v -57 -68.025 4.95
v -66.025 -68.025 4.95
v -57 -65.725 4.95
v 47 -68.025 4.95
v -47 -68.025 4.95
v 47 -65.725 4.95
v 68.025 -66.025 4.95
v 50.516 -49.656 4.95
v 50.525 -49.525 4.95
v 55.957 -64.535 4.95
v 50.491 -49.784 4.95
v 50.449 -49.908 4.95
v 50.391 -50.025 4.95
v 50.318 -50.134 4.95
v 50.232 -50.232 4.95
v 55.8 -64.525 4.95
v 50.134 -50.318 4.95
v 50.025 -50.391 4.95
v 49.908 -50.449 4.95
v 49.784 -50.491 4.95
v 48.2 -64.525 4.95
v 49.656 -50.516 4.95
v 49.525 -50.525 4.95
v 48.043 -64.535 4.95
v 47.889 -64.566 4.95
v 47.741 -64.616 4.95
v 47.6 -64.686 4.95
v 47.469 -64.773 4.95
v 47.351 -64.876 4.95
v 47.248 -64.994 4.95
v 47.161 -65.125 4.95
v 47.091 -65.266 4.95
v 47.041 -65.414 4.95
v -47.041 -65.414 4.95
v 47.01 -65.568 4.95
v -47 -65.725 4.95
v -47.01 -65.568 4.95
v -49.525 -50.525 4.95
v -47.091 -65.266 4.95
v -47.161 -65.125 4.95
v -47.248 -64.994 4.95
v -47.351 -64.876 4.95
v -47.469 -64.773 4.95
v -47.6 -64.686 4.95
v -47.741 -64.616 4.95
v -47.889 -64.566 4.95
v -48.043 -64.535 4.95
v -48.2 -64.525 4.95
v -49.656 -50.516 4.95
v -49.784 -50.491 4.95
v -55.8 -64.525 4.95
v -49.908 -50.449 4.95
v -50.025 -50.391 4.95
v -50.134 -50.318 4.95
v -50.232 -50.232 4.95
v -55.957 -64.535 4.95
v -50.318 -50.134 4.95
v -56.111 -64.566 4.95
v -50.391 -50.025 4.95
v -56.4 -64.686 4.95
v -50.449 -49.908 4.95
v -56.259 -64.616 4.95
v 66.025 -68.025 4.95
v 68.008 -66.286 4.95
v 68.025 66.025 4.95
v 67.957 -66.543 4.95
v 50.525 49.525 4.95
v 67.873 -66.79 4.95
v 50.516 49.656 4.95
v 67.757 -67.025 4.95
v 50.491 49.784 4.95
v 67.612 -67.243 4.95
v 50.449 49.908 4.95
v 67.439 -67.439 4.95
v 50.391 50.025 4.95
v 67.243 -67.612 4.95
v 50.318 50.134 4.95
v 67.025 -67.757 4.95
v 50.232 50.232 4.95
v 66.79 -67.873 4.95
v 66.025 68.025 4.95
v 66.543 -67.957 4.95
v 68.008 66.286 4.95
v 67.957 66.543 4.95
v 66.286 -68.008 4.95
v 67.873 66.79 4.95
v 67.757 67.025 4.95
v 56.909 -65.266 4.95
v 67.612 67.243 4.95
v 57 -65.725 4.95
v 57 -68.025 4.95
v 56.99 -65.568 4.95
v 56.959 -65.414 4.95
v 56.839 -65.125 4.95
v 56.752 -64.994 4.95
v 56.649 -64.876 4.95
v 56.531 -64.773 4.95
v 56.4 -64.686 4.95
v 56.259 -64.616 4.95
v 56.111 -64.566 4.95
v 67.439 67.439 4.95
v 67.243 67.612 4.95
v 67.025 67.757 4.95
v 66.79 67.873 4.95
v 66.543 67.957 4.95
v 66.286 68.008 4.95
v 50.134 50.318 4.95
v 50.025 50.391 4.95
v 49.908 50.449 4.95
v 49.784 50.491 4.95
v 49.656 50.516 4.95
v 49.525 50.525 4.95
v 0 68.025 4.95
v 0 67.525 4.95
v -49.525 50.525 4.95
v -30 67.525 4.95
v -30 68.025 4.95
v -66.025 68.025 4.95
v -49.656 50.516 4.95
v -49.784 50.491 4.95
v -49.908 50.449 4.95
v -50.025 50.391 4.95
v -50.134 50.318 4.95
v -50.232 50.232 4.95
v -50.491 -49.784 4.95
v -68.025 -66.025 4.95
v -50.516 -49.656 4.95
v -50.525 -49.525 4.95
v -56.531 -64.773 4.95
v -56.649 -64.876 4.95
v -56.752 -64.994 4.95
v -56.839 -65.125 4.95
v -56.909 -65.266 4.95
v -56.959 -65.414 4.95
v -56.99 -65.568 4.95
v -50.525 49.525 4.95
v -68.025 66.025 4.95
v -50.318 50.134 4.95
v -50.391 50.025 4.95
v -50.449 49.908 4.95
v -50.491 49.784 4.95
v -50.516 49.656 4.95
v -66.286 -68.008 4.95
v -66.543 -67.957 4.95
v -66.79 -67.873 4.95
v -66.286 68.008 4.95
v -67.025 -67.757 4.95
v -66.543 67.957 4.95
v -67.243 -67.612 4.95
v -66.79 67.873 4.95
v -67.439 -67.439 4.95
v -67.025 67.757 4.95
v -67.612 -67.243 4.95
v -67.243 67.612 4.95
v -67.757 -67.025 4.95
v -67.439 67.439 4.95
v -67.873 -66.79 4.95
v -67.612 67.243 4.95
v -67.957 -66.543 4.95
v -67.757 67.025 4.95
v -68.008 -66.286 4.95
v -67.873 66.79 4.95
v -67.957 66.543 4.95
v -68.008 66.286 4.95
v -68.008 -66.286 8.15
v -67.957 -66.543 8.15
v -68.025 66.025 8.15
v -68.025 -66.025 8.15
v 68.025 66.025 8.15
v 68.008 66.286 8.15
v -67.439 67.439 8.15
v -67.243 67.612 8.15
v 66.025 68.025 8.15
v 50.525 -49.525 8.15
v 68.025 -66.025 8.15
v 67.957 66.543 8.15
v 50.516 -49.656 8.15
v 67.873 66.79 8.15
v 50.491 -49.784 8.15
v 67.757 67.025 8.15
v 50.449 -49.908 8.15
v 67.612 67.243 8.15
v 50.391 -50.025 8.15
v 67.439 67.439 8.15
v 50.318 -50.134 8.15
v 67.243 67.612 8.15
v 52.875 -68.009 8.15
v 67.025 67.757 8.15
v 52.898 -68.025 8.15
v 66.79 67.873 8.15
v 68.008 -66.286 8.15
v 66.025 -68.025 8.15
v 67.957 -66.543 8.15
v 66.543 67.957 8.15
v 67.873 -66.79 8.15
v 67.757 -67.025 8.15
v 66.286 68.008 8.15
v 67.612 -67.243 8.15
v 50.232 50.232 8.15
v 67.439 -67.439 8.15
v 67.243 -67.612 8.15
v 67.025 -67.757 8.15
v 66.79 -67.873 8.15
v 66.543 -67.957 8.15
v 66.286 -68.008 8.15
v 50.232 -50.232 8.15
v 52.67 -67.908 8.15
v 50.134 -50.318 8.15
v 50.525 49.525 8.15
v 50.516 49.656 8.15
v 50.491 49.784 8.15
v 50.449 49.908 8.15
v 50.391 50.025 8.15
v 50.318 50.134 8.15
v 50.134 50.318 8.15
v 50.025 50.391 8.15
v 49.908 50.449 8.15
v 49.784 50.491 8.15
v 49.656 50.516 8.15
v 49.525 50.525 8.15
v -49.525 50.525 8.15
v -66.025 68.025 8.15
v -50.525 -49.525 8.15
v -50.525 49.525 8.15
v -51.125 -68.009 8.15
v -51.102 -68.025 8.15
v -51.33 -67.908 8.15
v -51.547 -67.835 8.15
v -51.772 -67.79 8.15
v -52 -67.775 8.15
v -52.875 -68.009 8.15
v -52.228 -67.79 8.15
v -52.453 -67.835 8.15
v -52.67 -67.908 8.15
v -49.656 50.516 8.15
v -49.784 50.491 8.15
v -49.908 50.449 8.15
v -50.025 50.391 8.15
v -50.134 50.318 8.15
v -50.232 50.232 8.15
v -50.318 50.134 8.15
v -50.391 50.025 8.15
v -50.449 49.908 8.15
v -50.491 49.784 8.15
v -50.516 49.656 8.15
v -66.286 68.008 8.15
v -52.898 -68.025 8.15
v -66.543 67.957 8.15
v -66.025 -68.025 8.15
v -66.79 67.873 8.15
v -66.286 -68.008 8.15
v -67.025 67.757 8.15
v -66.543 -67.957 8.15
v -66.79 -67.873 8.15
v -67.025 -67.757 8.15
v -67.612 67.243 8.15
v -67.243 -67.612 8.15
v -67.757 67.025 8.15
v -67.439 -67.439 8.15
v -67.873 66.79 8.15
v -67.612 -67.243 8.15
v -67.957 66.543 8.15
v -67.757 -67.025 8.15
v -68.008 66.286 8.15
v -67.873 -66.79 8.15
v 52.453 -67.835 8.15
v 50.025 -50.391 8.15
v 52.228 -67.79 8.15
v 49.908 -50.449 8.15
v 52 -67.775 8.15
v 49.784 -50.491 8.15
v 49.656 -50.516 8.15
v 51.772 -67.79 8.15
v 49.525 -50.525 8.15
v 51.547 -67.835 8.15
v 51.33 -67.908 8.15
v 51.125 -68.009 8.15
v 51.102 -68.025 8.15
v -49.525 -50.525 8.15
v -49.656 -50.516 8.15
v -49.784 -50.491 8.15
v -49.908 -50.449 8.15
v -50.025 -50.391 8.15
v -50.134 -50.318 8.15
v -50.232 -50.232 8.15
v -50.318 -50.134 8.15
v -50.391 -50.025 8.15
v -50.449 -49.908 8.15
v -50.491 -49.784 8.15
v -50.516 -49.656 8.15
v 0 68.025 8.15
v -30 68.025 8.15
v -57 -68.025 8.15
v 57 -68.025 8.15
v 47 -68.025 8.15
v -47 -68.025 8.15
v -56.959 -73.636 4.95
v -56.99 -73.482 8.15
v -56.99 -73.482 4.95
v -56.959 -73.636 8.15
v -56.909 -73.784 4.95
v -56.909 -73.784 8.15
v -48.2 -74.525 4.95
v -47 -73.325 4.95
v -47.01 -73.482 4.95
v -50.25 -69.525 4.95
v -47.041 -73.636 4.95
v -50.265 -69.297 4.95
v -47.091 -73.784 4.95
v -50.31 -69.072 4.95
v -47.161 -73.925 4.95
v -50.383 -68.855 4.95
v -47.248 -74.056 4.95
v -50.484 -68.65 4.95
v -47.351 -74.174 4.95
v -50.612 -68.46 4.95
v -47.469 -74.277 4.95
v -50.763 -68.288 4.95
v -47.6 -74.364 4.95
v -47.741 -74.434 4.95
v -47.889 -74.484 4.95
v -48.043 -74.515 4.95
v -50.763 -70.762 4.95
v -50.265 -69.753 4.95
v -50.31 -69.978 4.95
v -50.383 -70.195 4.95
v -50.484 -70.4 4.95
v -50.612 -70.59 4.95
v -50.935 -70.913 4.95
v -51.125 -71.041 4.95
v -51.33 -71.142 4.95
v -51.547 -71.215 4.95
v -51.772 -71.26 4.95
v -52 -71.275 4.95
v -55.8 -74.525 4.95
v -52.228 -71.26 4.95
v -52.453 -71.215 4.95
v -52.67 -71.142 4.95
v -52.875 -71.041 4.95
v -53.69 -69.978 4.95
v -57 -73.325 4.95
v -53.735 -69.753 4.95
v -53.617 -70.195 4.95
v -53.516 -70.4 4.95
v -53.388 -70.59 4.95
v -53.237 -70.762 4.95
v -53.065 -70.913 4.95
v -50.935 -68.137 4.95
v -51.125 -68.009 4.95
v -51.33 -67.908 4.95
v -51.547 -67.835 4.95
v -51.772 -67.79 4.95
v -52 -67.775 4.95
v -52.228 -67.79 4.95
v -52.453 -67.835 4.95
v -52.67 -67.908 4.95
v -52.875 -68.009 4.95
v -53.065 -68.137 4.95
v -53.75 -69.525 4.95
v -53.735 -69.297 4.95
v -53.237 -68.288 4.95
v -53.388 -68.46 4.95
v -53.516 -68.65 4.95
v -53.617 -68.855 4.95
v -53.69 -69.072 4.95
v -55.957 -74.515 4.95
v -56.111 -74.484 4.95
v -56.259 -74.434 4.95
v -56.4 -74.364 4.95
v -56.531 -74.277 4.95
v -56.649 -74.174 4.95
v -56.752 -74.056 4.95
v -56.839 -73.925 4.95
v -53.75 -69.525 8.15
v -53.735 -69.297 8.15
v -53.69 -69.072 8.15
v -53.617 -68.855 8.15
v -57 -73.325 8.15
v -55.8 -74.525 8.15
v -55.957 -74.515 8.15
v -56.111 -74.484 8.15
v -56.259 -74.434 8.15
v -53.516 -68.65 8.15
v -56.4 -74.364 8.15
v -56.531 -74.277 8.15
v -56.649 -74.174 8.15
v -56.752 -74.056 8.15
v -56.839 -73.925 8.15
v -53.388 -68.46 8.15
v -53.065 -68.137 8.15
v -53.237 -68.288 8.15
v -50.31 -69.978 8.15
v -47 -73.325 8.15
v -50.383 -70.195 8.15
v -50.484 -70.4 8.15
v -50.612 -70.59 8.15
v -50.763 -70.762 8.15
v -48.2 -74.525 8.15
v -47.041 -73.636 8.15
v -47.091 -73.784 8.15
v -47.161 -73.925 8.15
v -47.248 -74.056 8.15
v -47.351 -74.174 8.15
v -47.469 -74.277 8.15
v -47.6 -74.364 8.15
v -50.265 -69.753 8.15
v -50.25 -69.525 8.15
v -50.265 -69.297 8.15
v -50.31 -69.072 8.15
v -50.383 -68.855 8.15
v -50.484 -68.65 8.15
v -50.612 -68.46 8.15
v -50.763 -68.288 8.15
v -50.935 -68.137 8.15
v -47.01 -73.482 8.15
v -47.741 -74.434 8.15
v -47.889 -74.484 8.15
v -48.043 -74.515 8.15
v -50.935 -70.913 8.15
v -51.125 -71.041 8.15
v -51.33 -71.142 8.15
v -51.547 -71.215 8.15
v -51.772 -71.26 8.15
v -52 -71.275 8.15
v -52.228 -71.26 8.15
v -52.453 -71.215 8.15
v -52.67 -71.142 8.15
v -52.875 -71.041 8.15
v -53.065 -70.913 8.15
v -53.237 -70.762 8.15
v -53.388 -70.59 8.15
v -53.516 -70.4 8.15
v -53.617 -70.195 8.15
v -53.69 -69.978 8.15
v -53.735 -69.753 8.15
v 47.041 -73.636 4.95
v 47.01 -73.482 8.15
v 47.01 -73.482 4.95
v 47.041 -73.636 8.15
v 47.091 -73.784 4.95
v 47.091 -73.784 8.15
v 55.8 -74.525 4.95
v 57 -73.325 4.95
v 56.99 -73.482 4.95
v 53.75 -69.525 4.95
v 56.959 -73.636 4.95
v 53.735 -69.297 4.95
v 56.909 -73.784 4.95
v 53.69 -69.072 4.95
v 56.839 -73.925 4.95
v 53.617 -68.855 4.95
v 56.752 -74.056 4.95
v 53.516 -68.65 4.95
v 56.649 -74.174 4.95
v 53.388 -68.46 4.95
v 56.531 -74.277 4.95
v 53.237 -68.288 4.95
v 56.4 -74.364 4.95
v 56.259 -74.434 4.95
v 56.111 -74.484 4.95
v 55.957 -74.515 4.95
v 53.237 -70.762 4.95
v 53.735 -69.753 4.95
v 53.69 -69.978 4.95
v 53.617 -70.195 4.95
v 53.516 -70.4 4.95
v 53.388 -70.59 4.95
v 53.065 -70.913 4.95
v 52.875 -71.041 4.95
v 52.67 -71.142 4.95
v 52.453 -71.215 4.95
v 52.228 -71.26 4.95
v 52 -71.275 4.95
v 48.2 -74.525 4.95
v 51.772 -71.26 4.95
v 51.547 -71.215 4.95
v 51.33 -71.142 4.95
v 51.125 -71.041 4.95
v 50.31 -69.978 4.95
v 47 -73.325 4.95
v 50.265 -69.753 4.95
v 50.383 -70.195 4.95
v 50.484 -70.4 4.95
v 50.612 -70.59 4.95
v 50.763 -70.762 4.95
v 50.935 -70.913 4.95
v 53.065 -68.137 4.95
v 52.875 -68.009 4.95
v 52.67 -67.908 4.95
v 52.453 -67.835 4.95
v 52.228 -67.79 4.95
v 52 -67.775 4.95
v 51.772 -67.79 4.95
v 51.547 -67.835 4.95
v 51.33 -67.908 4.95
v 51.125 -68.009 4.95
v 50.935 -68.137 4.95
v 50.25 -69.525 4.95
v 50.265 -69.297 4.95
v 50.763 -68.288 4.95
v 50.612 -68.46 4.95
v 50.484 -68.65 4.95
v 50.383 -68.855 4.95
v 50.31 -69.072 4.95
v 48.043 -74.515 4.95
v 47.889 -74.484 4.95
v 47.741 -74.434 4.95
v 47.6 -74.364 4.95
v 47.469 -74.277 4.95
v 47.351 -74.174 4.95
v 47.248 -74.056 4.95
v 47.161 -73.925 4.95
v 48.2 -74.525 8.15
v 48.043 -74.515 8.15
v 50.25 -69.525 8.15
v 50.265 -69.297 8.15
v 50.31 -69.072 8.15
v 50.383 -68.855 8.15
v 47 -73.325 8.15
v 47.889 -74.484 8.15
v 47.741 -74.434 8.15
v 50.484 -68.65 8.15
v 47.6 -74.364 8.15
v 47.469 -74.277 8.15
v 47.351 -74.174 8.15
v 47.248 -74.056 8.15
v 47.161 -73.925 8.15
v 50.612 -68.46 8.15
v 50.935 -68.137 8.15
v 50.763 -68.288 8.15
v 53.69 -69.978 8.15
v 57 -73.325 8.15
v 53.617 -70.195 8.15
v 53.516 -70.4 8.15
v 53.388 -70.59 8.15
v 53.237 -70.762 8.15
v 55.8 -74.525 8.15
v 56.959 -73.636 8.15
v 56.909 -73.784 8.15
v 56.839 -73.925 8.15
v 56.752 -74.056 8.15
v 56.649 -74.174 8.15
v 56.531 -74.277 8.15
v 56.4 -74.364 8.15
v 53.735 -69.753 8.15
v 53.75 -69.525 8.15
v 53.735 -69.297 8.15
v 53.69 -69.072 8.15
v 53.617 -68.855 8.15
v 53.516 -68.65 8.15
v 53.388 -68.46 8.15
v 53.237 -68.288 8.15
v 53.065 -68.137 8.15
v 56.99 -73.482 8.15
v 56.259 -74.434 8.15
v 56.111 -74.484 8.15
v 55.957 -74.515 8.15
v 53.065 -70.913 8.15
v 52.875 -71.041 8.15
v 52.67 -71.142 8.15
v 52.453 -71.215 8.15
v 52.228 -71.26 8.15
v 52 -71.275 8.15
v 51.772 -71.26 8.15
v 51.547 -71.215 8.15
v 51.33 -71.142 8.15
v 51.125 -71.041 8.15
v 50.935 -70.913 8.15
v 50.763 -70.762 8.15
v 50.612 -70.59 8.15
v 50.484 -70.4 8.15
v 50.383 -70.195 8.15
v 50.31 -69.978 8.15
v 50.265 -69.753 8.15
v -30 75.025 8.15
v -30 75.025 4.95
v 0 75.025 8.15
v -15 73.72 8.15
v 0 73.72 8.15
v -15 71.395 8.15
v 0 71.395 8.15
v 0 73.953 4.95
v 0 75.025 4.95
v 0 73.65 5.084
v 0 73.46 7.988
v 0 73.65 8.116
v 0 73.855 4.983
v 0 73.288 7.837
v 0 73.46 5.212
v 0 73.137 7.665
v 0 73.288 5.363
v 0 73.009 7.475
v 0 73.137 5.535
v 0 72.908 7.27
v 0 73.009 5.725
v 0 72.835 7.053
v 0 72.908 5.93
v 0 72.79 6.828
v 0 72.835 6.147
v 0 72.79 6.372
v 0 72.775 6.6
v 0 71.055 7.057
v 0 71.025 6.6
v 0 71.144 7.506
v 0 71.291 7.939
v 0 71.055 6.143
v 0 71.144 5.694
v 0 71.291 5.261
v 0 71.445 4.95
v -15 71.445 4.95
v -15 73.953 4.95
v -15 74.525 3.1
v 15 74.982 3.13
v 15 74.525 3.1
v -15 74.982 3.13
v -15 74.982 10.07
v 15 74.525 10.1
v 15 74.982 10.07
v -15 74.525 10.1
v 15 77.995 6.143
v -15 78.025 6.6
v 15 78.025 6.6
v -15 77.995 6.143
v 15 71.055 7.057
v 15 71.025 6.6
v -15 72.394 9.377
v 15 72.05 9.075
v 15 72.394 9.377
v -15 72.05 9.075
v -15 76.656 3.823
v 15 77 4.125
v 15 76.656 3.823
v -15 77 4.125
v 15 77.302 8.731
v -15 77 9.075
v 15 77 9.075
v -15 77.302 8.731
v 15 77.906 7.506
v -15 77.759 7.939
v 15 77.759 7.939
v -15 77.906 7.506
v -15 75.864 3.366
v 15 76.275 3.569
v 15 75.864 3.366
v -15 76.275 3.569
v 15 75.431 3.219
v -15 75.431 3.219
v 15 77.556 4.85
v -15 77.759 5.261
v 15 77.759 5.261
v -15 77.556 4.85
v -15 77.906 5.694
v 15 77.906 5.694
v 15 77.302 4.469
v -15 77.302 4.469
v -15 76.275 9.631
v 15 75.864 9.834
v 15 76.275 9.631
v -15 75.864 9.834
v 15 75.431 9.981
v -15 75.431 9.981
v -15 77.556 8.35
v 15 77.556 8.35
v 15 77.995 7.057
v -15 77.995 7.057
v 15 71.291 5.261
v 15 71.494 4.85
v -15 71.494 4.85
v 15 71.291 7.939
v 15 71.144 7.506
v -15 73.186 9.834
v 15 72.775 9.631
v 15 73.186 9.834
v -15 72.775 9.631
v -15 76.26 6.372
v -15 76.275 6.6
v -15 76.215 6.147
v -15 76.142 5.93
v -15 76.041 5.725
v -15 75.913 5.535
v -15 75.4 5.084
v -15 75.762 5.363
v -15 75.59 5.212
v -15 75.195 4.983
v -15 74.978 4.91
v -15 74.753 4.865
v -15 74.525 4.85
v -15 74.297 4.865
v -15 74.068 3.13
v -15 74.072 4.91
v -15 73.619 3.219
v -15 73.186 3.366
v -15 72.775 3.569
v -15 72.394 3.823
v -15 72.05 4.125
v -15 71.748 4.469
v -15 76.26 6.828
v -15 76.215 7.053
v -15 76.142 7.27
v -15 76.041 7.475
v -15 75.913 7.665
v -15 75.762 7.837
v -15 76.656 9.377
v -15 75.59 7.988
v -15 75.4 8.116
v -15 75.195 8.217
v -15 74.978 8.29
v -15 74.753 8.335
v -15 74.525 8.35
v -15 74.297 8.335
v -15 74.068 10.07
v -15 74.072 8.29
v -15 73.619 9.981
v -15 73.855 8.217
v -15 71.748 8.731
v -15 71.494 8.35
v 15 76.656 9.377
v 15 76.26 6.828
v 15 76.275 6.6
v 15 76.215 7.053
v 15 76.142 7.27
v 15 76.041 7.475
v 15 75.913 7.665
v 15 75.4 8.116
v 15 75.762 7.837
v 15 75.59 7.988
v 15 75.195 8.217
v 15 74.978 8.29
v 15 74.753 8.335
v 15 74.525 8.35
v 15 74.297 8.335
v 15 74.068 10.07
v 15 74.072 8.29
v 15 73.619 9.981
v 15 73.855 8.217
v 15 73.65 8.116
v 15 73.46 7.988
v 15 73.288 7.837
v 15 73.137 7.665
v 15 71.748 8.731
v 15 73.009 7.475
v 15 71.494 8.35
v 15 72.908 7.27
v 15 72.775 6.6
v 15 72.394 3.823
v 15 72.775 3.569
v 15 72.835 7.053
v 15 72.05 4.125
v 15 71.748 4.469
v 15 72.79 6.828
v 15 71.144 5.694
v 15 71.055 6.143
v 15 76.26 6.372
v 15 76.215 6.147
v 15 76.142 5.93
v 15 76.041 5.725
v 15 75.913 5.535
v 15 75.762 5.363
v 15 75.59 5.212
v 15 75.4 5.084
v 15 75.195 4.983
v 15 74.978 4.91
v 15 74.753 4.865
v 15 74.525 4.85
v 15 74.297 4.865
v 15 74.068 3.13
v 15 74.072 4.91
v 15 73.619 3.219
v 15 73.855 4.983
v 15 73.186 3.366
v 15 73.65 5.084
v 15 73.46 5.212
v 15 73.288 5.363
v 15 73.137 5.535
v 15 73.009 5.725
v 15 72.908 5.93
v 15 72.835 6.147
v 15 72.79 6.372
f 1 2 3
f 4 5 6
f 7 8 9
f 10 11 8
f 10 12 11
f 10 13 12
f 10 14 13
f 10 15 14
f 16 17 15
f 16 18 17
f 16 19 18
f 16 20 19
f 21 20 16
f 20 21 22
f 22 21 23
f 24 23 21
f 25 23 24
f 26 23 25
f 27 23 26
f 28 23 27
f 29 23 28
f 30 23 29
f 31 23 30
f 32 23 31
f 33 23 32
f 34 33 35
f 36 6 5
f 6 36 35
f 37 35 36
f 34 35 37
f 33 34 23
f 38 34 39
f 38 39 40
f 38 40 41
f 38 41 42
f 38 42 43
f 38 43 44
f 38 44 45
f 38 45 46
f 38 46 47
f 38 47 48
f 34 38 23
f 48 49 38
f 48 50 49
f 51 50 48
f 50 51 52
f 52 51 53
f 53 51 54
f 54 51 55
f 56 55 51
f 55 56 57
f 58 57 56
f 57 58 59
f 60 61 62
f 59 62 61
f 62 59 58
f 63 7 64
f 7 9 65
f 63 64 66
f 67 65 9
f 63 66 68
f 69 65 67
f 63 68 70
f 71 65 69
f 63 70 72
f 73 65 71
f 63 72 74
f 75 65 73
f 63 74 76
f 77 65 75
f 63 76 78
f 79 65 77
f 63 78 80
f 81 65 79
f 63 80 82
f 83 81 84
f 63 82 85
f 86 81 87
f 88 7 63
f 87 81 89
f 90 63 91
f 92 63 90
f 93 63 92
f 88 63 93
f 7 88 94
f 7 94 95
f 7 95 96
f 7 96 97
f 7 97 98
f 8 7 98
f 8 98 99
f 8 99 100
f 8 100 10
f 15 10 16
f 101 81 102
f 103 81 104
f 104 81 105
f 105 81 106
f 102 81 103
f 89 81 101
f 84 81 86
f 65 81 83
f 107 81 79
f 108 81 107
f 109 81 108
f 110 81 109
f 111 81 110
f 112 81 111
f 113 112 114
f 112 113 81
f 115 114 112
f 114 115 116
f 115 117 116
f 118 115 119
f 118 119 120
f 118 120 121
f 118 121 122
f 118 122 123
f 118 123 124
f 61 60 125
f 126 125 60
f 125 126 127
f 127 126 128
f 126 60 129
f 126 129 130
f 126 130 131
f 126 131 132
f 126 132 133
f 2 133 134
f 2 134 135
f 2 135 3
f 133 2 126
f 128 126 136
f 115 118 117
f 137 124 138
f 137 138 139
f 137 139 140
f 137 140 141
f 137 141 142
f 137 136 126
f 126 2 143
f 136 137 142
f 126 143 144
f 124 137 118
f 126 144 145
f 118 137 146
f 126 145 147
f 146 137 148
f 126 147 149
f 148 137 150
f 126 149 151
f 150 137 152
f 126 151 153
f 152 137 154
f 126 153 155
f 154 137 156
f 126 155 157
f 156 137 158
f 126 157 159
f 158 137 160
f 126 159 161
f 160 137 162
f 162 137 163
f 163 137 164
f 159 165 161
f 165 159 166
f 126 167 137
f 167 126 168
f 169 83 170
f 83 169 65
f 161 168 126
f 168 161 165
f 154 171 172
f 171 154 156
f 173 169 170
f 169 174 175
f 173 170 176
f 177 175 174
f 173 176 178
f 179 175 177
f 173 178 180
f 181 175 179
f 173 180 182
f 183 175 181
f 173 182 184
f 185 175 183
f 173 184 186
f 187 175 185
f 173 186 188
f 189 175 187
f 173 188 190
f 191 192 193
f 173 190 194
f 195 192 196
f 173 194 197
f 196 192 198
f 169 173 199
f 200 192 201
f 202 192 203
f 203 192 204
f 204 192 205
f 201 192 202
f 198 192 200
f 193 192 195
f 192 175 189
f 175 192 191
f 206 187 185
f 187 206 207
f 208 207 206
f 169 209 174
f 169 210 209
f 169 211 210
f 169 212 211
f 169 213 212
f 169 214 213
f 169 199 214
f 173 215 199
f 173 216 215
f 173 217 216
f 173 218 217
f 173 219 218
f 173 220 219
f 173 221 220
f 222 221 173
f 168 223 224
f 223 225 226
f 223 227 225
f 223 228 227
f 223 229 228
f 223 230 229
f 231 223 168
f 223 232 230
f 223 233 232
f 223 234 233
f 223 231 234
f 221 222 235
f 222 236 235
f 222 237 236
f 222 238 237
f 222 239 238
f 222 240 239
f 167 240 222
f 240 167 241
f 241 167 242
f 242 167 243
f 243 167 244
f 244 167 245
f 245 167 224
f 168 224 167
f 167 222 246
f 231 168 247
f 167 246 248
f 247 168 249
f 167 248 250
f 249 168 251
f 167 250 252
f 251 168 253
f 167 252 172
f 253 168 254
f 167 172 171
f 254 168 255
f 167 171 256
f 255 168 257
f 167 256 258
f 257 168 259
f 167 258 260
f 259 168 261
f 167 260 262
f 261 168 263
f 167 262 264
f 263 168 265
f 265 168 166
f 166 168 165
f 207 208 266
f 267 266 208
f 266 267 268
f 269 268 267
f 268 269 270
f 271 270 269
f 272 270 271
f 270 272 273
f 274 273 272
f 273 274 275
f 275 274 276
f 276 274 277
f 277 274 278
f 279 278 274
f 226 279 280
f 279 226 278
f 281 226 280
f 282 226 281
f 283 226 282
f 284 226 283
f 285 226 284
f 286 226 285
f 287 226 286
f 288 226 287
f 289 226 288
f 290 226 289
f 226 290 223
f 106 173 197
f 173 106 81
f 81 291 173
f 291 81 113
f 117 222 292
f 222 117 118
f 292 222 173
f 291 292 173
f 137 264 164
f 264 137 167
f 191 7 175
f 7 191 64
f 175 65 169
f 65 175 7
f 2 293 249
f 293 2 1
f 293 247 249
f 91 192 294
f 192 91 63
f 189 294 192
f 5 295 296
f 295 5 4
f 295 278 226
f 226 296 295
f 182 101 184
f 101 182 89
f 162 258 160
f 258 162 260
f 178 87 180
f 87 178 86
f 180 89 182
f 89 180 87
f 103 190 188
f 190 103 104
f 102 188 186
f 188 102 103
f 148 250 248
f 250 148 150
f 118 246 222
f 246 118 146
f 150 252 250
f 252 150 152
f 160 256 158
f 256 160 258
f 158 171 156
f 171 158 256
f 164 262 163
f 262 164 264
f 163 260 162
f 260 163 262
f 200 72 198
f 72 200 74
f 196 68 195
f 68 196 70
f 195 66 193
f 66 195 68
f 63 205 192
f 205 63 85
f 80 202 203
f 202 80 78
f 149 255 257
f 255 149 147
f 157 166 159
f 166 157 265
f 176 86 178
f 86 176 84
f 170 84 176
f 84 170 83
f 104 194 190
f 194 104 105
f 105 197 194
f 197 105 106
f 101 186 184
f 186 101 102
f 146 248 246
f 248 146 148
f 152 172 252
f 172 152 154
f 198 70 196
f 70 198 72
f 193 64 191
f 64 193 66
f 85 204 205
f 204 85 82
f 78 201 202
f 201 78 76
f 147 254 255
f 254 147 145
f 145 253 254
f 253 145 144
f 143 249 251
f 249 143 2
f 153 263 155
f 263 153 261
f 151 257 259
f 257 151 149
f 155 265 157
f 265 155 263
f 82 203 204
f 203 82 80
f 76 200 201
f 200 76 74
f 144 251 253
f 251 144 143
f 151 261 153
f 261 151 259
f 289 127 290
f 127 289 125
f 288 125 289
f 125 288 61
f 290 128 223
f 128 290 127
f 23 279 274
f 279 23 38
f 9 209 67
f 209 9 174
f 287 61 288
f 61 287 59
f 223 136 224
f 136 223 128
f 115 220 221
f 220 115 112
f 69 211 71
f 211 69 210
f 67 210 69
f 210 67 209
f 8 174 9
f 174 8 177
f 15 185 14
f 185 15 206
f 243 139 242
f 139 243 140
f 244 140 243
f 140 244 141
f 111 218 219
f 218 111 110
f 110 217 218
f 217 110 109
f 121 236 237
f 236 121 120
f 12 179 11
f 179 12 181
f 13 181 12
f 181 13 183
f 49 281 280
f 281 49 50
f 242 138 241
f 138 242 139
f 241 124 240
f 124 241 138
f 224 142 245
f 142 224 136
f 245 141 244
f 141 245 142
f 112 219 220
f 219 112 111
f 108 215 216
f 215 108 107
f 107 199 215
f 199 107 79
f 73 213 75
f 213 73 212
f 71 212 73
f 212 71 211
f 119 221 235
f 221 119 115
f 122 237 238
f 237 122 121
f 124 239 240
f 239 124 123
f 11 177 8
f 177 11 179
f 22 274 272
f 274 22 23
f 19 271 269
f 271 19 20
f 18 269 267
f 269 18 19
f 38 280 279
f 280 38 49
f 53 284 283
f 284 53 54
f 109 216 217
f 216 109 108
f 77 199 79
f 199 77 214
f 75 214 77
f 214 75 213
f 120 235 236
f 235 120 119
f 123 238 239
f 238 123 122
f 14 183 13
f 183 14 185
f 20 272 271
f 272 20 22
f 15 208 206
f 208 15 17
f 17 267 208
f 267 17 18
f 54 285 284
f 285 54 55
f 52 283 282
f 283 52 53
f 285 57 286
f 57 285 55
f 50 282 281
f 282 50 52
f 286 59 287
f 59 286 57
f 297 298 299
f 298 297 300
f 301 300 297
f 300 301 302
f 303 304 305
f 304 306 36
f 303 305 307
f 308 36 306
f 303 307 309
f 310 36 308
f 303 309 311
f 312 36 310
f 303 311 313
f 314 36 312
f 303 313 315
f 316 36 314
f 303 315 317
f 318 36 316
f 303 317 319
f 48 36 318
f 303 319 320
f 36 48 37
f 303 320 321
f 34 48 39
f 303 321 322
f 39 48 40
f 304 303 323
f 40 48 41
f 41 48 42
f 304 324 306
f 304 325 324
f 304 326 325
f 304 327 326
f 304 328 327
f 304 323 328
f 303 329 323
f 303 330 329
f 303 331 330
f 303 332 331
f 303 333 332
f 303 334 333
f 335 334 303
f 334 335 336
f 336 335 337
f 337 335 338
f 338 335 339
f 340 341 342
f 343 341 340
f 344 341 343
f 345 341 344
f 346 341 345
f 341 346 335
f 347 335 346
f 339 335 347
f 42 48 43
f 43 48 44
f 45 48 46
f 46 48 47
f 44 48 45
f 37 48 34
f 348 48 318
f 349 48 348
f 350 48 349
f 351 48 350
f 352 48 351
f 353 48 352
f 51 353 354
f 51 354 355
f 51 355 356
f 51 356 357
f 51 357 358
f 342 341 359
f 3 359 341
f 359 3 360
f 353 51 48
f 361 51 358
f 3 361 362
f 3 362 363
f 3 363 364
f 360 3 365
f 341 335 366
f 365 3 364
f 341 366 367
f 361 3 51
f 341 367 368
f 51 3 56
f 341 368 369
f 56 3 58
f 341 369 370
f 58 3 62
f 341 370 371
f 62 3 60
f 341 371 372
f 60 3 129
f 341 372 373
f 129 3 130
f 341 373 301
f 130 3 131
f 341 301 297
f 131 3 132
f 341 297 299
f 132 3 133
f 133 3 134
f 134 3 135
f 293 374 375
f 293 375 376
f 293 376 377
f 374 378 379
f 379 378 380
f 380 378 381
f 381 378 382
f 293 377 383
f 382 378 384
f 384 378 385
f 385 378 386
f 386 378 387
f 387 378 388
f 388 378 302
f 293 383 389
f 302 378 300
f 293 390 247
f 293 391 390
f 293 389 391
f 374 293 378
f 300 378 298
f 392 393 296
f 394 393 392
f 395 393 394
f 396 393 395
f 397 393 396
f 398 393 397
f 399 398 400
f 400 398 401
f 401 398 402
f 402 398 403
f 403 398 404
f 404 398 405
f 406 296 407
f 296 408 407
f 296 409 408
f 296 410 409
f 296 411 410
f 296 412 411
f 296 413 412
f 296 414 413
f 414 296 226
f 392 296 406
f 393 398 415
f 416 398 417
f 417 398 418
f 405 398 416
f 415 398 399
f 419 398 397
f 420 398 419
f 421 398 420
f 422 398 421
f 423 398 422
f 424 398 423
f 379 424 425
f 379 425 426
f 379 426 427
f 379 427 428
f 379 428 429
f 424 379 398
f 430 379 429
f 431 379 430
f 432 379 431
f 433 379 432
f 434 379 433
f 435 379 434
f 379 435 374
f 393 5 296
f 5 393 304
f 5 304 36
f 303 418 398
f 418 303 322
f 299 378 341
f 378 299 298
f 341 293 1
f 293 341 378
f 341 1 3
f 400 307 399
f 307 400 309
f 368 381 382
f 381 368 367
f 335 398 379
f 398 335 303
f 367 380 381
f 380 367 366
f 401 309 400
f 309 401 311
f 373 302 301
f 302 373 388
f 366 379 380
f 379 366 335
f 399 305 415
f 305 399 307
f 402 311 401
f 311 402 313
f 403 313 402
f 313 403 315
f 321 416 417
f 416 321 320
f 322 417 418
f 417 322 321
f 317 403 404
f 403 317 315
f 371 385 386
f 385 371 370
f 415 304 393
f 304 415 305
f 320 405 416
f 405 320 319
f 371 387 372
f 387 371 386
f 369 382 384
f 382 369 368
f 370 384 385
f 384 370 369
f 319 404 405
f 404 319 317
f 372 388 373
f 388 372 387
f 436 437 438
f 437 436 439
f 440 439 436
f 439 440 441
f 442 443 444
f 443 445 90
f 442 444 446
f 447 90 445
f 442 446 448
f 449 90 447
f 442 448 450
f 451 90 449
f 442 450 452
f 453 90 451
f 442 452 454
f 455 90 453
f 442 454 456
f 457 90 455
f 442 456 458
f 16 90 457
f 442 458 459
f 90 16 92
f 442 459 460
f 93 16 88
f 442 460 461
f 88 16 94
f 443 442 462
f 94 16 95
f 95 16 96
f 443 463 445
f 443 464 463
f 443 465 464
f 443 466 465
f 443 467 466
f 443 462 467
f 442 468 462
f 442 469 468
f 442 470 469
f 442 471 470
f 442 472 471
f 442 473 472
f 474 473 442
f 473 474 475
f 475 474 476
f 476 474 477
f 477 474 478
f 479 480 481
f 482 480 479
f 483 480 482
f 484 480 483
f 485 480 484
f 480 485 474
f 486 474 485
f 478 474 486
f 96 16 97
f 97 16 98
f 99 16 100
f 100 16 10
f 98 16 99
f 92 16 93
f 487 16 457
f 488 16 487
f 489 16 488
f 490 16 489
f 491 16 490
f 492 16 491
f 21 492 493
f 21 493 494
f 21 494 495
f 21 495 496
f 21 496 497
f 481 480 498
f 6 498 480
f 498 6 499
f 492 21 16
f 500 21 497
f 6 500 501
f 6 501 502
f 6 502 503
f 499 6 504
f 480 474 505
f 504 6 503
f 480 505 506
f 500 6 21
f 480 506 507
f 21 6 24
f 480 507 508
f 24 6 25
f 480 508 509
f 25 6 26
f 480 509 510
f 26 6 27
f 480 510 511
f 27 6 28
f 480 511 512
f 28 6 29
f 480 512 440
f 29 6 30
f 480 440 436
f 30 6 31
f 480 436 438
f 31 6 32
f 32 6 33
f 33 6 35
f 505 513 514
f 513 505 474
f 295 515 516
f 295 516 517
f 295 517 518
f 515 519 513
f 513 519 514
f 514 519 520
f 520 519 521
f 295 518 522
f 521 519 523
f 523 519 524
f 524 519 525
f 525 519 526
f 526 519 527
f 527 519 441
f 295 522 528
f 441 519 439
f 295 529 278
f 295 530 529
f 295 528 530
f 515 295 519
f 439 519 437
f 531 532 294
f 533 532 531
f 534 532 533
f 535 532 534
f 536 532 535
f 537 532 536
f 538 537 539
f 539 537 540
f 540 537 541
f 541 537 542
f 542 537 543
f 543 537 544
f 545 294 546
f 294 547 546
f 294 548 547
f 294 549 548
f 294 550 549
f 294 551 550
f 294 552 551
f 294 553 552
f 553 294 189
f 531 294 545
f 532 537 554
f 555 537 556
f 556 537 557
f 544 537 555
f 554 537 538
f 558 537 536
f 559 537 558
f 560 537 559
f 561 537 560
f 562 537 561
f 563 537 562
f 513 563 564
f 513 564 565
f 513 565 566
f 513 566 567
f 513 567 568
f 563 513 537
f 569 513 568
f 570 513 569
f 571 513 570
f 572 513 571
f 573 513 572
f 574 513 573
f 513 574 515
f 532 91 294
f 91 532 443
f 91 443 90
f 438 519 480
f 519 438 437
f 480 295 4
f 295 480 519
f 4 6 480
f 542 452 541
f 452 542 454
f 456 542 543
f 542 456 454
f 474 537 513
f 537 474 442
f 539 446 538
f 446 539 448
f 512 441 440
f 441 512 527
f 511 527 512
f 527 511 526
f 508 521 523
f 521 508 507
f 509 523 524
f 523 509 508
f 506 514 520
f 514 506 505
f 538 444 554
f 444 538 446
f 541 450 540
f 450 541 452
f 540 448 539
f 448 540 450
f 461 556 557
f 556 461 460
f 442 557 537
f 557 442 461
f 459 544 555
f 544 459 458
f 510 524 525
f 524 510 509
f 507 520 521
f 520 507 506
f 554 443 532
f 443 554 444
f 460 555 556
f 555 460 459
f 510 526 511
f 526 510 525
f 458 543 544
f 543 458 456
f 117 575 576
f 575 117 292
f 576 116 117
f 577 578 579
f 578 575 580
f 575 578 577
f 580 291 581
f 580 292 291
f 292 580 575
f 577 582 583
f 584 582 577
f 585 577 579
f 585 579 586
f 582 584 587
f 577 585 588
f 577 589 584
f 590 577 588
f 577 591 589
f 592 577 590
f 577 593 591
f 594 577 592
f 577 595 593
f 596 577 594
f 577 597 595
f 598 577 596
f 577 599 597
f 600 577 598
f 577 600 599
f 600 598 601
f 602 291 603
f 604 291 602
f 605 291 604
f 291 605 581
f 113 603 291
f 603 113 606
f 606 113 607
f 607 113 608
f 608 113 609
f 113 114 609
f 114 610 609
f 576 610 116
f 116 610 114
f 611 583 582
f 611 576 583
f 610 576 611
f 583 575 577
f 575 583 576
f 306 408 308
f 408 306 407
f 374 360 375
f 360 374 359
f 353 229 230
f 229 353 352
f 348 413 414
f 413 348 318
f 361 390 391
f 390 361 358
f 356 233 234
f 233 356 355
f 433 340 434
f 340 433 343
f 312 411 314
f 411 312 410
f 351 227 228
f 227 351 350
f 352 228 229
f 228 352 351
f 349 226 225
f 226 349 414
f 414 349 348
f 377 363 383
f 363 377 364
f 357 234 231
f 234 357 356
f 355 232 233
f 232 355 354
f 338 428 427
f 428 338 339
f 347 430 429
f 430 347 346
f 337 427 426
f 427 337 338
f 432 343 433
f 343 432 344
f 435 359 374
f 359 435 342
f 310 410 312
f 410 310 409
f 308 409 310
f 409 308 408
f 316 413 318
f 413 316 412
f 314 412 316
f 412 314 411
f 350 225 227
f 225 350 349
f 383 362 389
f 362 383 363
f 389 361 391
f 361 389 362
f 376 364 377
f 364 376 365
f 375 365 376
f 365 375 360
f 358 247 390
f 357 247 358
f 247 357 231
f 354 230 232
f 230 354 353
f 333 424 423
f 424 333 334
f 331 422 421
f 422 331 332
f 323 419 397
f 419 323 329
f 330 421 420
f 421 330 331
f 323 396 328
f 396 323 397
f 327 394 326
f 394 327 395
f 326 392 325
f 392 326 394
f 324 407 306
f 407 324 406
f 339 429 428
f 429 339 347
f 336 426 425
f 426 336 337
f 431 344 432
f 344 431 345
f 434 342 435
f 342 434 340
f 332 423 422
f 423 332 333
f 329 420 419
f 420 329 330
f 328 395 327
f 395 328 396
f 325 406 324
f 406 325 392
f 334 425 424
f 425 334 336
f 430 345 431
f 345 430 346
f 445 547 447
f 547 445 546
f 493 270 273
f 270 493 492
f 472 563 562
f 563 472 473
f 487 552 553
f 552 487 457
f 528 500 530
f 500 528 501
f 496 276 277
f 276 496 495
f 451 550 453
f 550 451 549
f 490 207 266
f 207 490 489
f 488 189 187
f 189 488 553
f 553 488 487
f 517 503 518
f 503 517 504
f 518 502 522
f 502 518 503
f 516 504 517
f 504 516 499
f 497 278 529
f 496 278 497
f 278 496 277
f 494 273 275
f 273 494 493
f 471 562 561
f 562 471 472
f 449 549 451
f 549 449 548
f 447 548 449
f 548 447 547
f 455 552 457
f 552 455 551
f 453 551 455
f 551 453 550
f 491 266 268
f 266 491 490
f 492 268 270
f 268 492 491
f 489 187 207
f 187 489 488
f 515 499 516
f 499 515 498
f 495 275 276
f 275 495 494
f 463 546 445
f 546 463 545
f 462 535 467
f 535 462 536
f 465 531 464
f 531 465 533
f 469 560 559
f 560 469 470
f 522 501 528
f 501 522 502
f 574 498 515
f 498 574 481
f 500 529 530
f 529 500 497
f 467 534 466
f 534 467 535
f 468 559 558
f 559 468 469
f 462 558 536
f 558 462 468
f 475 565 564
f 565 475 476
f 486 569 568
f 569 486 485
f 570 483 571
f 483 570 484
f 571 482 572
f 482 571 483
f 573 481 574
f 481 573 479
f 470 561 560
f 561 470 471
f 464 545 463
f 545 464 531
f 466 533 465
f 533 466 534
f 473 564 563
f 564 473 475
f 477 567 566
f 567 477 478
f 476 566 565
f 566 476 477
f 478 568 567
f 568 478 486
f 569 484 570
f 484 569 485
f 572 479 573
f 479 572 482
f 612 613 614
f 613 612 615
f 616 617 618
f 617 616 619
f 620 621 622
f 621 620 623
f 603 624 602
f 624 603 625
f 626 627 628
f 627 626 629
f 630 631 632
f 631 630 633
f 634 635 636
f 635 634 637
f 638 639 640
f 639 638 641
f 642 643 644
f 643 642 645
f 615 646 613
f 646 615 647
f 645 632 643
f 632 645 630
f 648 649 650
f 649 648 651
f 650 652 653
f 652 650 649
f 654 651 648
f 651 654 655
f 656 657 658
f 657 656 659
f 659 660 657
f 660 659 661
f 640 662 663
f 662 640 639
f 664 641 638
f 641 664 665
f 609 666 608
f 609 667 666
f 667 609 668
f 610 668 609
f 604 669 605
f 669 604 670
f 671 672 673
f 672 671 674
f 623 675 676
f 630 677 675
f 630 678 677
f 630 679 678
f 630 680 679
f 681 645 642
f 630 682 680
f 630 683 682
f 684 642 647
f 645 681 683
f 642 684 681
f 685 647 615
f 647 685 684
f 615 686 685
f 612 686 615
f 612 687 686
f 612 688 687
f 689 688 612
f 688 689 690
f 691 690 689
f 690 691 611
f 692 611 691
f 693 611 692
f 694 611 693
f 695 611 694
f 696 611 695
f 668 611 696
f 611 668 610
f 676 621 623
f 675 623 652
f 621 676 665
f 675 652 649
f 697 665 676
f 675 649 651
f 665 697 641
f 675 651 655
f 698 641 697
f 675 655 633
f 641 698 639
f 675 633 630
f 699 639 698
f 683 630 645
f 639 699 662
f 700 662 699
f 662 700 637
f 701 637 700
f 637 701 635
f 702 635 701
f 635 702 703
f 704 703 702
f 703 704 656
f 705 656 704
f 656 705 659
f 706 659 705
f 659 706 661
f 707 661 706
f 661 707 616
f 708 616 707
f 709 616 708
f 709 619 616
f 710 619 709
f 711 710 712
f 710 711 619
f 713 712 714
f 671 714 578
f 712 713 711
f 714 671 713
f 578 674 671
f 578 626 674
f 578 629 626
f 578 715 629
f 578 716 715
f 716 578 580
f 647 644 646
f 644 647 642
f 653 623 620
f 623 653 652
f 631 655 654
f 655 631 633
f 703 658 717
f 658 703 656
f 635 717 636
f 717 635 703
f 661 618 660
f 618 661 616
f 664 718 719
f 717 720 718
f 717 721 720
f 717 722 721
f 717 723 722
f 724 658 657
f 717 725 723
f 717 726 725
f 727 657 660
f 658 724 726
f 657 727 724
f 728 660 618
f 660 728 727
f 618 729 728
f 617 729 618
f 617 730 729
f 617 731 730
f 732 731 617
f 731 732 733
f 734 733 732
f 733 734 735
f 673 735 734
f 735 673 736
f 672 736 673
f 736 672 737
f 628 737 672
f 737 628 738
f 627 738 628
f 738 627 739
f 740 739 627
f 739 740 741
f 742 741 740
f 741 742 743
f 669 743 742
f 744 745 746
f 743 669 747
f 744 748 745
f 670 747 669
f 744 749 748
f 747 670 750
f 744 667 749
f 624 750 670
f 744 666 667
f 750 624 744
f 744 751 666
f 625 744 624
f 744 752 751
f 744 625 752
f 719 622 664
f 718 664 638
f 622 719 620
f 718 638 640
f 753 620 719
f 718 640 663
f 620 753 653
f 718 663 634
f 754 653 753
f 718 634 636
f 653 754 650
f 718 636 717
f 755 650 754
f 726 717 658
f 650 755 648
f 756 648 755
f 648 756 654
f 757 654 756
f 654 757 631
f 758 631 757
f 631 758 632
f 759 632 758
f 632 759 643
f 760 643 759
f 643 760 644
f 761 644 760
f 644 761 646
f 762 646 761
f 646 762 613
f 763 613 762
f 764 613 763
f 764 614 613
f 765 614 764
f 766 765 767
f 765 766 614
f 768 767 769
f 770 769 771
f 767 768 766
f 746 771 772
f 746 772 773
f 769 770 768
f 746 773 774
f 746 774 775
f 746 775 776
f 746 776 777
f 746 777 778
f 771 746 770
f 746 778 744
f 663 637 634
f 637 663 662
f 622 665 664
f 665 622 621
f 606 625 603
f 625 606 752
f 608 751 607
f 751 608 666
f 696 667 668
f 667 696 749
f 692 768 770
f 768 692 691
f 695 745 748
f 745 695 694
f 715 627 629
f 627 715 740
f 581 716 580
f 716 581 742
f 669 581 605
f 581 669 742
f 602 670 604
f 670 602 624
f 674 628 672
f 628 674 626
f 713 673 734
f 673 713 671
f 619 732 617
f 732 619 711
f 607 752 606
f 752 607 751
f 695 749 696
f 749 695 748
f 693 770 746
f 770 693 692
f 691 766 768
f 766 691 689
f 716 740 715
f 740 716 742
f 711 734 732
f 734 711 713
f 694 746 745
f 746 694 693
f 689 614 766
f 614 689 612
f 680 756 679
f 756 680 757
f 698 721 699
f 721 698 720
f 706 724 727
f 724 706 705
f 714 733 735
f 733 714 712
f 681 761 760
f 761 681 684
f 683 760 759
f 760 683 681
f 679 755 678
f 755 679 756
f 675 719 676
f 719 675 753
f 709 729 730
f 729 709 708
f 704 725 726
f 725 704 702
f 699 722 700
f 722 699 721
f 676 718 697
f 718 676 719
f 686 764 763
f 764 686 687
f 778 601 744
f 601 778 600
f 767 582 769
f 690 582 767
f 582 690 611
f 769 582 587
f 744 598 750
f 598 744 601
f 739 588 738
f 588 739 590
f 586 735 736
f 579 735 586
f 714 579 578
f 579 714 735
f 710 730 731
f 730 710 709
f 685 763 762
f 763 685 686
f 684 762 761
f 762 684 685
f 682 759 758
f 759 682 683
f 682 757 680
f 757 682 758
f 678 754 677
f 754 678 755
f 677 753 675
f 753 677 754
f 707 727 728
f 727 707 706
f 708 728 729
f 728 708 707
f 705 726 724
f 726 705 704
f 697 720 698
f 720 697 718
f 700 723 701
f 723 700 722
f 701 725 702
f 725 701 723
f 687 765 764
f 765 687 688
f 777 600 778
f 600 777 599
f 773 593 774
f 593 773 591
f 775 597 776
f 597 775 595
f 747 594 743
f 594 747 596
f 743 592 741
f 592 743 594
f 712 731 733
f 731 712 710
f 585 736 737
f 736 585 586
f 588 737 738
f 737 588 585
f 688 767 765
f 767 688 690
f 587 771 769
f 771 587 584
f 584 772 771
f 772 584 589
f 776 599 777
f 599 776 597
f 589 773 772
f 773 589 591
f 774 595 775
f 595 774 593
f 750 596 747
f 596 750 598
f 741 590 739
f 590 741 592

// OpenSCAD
// file: stencil_jig.scad
// Parametric paste-printing jig for cheap-version (100 x 100 mm PCB).
//
// Export separate parts with OpenSCAD:
//   openscad -D 'part="base"'  -o stencil_jig_base.stl  stencil_jig.scad
//   openscad -D 'part="frame"' -o stencil_jig_frame.stl stencil_jig.scad
//
// The stencil is 130.05 x 130.05 mm: 15 mm of blank field on every side of
// the 100.05 mm board.  The lower tray has a 0.2 mm recessed stencil shelf,
// so a 0.2 mm stencil and the bare PCB finish at the same height.

$fn = 48;

part = is_undef(part) ? "assembly" : part;

pcb_w = 100.05;
pcb_h = 100.05;
pcb_t = 1.60;
pcb_clearance = 0.30;       // clearance on each side of the PCB pocket

stencil_margin_x = 15.0;    // left/right blank field
stencil_margin_y = 15.0;    // front/back blank field; set to 0 for side-only fields
stencil_t = 0.20;
stencil_clearance = 0.30;   // clearance on each side of the stencil pocket

base_t = 5.0;
stencil_recess = 0.20;
base_border = 8.0;
base_corner_r = 3.0;

frame_border = 3.0;
frame_t = 3.2;
frame_corner_r = 2.0;
frame_gap = 0.05;            // small compression of the stencil/soft strip

hinge_pin_d = 3.0;           // use a smooth M3 screw or 3 mm rod as the pin
hinge_hole_d = 3.5;
hinge_od = 7.0;
hinge_y = (pcb_h + 2 * (stencil_margin_y + base_border)) / 2 + 1.5;
hinge_z = base_t + 1.6;

latch_hole_d = 3.5;
latch_nut_af = 6.4;          // M3 hex nut pocket, measured across corners here
latch_y = -(pcb_h + 2 * (stencil_margin_y + frame_border)) / 2 - 1.5;

// BT301 is on the bottom of the board.  These values are deliberately easy to
// change if the holder position or a future board revision changes.
battery_relief_x = 27.9;     // board-centred coordinates, from cheap-version PCB
battery_relief_y = 2.0;
battery_relief_w = 32.0;
battery_relief_h = 28.0;

stencil_w = pcb_w + 2 * stencil_margin_x;
stencil_h = pcb_h + 2 * stencil_margin_y;
base_w = stencil_w + 2 * base_border;
base_h = stencil_h + 2 * base_border;
frame_inner_w = pcb_w + 1.0;
frame_inner_h = pcb_h + 1.0;
frame_outer_w = stencil_w + 2 * frame_border;
frame_outer_h = stencil_h + 2 * frame_border;

stencil_shelf_z = base_t - stencil_recess;
pcb_floor_z = stencil_shelf_z - pcb_t;
frame_z = stencil_shelf_z + stencil_t - frame_gap;

module rounded_prism(w, d, h, r) {
    if (r <= 0) {
        cube([w, d, h]);
    } else {
        linear_extrude(height = h)
            hull() {
                for (x = [-w / 2 + r, w / 2 - r])
                    for (y = [-d / 2 + r, d / 2 - r])
                        translate([x, y]) circle(r = r);
            }
    }
}

module ring(outer_w, outer_h, inner_w, inner_h, z, h, r) {
    translate([0, 0, z])
        difference() {
            rounded_prism(outer_w, outer_h, h, r);
            translate([0, 0, -0.1])
                rounded_prism(inner_w, inner_h, h + 0.2, max(0.8, r - 1.0));
        }
}

module hinge_knuckle(x0, len) {
    translate([x0, hinge_y, hinge_z])
        rotate([0, 90, 0])
            difference() {
                cylinder(h = len, d = hinge_od);
                translate([0, 0, -0.1])
                    cylinder(h = len + 0.2, d = hinge_hole_d);
            }
}

module base_hinge_arm(x0, len) {
    translate([x0, (base_h / 2 + hinge_y) / 2, base_t / 2])
        cube([len, hinge_y - base_h / 2 + 1.0, base_t], center = true);
}

module frame_hinge_arm(x0, len) {
    translate([x0, (frame_outer_h / 2 + hinge_y) / 2, frame_z + frame_t / 2])
        cube([len, hinge_y - frame_outer_h / 2 + 1.0, frame_t], center = true);
}

module latch_hole(x, z0, h) {
    translate([x, latch_y, z0])
        cylinder(h = h, d = latch_hole_d);
}

module base() {
    difference() {
        rounded_prism(base_w, base_h, base_t, base_corner_r);

        // The stencil pocket registers its outside edge.  Its floor and the
        // PCB pocket are coplanar, so the stencil sits directly on the PCB.
        translate([0, 0, stencil_shelf_z])
            rounded_prism(stencil_w + 2 * stencil_clearance,
                          stencil_h + 2 * stencil_clearance,
                          base_t - stencil_shelf_z + 0.2, 2.0);
        translate([0, 0, pcb_floor_z])
            rounded_prism(pcb_w + 2 * pcb_clearance,
                          pcb_h + 2 * pcb_clearance,
                          stencil_shelf_z - pcb_floor_z + 0.2, 0.8);

        // Relief for the bottom CR2032 holder.  The rest of the PCB is
        // supported by the pocket floor; no mounting holes are required.
        translate([battery_relief_x, battery_relief_y, -0.1])
            rounded_prism(battery_relief_w, battery_relief_h,
                          pcb_floor_z + 0.3, 2.0);

        // Captive M3 nut pockets under the two front latch screws.
        for (x = [-52, 52]) {
            latch_hole(x, -0.1, base_t + 0.2);
            translate([x, latch_y, -0.1])
                cylinder(h = 2.6, r = latch_nut_af / 2, $fn = 6);
        }
    }

    // Two base knuckles with one central frame knuckle between them.
    for (x0 = [-55, 25]) {
        base_hinge_arm(x0, 30);
        hinge_knuckle(x0, 30);
    }
}

module frame() {
    difference() {
        union() {
            ring(frame_outer_w, frame_outer_h,
                 frame_inner_w, frame_inner_h,
                 frame_z, frame_t, frame_corner_r);

            // Front tabs sit over the captive nuts in the base.
            for (x = [-52, 52])
                translate([x, latch_y, frame_z])
                    rounded_prism(10, 10, frame_t, 1.2);

            frame_hinge_arm(-15, 30);
        }

        for (x = [-52, 52])
            latch_hole(x, frame_z - 0.1, frame_t + 0.2);
    }

    // One frame knuckle, interleaved between the two base knuckles.
    hinge_knuckle(-15, 30);
}

if (part == "base") {
    base();
} else if (part == "frame") {
    frame();
} else {
    // Closed assembly preview.  The two parts are intentionally coplanar;
    // export the separate parts for printing.
    base();
    frame();
}
// main file
// Export wrapper for the hinged upper frame.
use <stencil_jig.scad>;
frame();
